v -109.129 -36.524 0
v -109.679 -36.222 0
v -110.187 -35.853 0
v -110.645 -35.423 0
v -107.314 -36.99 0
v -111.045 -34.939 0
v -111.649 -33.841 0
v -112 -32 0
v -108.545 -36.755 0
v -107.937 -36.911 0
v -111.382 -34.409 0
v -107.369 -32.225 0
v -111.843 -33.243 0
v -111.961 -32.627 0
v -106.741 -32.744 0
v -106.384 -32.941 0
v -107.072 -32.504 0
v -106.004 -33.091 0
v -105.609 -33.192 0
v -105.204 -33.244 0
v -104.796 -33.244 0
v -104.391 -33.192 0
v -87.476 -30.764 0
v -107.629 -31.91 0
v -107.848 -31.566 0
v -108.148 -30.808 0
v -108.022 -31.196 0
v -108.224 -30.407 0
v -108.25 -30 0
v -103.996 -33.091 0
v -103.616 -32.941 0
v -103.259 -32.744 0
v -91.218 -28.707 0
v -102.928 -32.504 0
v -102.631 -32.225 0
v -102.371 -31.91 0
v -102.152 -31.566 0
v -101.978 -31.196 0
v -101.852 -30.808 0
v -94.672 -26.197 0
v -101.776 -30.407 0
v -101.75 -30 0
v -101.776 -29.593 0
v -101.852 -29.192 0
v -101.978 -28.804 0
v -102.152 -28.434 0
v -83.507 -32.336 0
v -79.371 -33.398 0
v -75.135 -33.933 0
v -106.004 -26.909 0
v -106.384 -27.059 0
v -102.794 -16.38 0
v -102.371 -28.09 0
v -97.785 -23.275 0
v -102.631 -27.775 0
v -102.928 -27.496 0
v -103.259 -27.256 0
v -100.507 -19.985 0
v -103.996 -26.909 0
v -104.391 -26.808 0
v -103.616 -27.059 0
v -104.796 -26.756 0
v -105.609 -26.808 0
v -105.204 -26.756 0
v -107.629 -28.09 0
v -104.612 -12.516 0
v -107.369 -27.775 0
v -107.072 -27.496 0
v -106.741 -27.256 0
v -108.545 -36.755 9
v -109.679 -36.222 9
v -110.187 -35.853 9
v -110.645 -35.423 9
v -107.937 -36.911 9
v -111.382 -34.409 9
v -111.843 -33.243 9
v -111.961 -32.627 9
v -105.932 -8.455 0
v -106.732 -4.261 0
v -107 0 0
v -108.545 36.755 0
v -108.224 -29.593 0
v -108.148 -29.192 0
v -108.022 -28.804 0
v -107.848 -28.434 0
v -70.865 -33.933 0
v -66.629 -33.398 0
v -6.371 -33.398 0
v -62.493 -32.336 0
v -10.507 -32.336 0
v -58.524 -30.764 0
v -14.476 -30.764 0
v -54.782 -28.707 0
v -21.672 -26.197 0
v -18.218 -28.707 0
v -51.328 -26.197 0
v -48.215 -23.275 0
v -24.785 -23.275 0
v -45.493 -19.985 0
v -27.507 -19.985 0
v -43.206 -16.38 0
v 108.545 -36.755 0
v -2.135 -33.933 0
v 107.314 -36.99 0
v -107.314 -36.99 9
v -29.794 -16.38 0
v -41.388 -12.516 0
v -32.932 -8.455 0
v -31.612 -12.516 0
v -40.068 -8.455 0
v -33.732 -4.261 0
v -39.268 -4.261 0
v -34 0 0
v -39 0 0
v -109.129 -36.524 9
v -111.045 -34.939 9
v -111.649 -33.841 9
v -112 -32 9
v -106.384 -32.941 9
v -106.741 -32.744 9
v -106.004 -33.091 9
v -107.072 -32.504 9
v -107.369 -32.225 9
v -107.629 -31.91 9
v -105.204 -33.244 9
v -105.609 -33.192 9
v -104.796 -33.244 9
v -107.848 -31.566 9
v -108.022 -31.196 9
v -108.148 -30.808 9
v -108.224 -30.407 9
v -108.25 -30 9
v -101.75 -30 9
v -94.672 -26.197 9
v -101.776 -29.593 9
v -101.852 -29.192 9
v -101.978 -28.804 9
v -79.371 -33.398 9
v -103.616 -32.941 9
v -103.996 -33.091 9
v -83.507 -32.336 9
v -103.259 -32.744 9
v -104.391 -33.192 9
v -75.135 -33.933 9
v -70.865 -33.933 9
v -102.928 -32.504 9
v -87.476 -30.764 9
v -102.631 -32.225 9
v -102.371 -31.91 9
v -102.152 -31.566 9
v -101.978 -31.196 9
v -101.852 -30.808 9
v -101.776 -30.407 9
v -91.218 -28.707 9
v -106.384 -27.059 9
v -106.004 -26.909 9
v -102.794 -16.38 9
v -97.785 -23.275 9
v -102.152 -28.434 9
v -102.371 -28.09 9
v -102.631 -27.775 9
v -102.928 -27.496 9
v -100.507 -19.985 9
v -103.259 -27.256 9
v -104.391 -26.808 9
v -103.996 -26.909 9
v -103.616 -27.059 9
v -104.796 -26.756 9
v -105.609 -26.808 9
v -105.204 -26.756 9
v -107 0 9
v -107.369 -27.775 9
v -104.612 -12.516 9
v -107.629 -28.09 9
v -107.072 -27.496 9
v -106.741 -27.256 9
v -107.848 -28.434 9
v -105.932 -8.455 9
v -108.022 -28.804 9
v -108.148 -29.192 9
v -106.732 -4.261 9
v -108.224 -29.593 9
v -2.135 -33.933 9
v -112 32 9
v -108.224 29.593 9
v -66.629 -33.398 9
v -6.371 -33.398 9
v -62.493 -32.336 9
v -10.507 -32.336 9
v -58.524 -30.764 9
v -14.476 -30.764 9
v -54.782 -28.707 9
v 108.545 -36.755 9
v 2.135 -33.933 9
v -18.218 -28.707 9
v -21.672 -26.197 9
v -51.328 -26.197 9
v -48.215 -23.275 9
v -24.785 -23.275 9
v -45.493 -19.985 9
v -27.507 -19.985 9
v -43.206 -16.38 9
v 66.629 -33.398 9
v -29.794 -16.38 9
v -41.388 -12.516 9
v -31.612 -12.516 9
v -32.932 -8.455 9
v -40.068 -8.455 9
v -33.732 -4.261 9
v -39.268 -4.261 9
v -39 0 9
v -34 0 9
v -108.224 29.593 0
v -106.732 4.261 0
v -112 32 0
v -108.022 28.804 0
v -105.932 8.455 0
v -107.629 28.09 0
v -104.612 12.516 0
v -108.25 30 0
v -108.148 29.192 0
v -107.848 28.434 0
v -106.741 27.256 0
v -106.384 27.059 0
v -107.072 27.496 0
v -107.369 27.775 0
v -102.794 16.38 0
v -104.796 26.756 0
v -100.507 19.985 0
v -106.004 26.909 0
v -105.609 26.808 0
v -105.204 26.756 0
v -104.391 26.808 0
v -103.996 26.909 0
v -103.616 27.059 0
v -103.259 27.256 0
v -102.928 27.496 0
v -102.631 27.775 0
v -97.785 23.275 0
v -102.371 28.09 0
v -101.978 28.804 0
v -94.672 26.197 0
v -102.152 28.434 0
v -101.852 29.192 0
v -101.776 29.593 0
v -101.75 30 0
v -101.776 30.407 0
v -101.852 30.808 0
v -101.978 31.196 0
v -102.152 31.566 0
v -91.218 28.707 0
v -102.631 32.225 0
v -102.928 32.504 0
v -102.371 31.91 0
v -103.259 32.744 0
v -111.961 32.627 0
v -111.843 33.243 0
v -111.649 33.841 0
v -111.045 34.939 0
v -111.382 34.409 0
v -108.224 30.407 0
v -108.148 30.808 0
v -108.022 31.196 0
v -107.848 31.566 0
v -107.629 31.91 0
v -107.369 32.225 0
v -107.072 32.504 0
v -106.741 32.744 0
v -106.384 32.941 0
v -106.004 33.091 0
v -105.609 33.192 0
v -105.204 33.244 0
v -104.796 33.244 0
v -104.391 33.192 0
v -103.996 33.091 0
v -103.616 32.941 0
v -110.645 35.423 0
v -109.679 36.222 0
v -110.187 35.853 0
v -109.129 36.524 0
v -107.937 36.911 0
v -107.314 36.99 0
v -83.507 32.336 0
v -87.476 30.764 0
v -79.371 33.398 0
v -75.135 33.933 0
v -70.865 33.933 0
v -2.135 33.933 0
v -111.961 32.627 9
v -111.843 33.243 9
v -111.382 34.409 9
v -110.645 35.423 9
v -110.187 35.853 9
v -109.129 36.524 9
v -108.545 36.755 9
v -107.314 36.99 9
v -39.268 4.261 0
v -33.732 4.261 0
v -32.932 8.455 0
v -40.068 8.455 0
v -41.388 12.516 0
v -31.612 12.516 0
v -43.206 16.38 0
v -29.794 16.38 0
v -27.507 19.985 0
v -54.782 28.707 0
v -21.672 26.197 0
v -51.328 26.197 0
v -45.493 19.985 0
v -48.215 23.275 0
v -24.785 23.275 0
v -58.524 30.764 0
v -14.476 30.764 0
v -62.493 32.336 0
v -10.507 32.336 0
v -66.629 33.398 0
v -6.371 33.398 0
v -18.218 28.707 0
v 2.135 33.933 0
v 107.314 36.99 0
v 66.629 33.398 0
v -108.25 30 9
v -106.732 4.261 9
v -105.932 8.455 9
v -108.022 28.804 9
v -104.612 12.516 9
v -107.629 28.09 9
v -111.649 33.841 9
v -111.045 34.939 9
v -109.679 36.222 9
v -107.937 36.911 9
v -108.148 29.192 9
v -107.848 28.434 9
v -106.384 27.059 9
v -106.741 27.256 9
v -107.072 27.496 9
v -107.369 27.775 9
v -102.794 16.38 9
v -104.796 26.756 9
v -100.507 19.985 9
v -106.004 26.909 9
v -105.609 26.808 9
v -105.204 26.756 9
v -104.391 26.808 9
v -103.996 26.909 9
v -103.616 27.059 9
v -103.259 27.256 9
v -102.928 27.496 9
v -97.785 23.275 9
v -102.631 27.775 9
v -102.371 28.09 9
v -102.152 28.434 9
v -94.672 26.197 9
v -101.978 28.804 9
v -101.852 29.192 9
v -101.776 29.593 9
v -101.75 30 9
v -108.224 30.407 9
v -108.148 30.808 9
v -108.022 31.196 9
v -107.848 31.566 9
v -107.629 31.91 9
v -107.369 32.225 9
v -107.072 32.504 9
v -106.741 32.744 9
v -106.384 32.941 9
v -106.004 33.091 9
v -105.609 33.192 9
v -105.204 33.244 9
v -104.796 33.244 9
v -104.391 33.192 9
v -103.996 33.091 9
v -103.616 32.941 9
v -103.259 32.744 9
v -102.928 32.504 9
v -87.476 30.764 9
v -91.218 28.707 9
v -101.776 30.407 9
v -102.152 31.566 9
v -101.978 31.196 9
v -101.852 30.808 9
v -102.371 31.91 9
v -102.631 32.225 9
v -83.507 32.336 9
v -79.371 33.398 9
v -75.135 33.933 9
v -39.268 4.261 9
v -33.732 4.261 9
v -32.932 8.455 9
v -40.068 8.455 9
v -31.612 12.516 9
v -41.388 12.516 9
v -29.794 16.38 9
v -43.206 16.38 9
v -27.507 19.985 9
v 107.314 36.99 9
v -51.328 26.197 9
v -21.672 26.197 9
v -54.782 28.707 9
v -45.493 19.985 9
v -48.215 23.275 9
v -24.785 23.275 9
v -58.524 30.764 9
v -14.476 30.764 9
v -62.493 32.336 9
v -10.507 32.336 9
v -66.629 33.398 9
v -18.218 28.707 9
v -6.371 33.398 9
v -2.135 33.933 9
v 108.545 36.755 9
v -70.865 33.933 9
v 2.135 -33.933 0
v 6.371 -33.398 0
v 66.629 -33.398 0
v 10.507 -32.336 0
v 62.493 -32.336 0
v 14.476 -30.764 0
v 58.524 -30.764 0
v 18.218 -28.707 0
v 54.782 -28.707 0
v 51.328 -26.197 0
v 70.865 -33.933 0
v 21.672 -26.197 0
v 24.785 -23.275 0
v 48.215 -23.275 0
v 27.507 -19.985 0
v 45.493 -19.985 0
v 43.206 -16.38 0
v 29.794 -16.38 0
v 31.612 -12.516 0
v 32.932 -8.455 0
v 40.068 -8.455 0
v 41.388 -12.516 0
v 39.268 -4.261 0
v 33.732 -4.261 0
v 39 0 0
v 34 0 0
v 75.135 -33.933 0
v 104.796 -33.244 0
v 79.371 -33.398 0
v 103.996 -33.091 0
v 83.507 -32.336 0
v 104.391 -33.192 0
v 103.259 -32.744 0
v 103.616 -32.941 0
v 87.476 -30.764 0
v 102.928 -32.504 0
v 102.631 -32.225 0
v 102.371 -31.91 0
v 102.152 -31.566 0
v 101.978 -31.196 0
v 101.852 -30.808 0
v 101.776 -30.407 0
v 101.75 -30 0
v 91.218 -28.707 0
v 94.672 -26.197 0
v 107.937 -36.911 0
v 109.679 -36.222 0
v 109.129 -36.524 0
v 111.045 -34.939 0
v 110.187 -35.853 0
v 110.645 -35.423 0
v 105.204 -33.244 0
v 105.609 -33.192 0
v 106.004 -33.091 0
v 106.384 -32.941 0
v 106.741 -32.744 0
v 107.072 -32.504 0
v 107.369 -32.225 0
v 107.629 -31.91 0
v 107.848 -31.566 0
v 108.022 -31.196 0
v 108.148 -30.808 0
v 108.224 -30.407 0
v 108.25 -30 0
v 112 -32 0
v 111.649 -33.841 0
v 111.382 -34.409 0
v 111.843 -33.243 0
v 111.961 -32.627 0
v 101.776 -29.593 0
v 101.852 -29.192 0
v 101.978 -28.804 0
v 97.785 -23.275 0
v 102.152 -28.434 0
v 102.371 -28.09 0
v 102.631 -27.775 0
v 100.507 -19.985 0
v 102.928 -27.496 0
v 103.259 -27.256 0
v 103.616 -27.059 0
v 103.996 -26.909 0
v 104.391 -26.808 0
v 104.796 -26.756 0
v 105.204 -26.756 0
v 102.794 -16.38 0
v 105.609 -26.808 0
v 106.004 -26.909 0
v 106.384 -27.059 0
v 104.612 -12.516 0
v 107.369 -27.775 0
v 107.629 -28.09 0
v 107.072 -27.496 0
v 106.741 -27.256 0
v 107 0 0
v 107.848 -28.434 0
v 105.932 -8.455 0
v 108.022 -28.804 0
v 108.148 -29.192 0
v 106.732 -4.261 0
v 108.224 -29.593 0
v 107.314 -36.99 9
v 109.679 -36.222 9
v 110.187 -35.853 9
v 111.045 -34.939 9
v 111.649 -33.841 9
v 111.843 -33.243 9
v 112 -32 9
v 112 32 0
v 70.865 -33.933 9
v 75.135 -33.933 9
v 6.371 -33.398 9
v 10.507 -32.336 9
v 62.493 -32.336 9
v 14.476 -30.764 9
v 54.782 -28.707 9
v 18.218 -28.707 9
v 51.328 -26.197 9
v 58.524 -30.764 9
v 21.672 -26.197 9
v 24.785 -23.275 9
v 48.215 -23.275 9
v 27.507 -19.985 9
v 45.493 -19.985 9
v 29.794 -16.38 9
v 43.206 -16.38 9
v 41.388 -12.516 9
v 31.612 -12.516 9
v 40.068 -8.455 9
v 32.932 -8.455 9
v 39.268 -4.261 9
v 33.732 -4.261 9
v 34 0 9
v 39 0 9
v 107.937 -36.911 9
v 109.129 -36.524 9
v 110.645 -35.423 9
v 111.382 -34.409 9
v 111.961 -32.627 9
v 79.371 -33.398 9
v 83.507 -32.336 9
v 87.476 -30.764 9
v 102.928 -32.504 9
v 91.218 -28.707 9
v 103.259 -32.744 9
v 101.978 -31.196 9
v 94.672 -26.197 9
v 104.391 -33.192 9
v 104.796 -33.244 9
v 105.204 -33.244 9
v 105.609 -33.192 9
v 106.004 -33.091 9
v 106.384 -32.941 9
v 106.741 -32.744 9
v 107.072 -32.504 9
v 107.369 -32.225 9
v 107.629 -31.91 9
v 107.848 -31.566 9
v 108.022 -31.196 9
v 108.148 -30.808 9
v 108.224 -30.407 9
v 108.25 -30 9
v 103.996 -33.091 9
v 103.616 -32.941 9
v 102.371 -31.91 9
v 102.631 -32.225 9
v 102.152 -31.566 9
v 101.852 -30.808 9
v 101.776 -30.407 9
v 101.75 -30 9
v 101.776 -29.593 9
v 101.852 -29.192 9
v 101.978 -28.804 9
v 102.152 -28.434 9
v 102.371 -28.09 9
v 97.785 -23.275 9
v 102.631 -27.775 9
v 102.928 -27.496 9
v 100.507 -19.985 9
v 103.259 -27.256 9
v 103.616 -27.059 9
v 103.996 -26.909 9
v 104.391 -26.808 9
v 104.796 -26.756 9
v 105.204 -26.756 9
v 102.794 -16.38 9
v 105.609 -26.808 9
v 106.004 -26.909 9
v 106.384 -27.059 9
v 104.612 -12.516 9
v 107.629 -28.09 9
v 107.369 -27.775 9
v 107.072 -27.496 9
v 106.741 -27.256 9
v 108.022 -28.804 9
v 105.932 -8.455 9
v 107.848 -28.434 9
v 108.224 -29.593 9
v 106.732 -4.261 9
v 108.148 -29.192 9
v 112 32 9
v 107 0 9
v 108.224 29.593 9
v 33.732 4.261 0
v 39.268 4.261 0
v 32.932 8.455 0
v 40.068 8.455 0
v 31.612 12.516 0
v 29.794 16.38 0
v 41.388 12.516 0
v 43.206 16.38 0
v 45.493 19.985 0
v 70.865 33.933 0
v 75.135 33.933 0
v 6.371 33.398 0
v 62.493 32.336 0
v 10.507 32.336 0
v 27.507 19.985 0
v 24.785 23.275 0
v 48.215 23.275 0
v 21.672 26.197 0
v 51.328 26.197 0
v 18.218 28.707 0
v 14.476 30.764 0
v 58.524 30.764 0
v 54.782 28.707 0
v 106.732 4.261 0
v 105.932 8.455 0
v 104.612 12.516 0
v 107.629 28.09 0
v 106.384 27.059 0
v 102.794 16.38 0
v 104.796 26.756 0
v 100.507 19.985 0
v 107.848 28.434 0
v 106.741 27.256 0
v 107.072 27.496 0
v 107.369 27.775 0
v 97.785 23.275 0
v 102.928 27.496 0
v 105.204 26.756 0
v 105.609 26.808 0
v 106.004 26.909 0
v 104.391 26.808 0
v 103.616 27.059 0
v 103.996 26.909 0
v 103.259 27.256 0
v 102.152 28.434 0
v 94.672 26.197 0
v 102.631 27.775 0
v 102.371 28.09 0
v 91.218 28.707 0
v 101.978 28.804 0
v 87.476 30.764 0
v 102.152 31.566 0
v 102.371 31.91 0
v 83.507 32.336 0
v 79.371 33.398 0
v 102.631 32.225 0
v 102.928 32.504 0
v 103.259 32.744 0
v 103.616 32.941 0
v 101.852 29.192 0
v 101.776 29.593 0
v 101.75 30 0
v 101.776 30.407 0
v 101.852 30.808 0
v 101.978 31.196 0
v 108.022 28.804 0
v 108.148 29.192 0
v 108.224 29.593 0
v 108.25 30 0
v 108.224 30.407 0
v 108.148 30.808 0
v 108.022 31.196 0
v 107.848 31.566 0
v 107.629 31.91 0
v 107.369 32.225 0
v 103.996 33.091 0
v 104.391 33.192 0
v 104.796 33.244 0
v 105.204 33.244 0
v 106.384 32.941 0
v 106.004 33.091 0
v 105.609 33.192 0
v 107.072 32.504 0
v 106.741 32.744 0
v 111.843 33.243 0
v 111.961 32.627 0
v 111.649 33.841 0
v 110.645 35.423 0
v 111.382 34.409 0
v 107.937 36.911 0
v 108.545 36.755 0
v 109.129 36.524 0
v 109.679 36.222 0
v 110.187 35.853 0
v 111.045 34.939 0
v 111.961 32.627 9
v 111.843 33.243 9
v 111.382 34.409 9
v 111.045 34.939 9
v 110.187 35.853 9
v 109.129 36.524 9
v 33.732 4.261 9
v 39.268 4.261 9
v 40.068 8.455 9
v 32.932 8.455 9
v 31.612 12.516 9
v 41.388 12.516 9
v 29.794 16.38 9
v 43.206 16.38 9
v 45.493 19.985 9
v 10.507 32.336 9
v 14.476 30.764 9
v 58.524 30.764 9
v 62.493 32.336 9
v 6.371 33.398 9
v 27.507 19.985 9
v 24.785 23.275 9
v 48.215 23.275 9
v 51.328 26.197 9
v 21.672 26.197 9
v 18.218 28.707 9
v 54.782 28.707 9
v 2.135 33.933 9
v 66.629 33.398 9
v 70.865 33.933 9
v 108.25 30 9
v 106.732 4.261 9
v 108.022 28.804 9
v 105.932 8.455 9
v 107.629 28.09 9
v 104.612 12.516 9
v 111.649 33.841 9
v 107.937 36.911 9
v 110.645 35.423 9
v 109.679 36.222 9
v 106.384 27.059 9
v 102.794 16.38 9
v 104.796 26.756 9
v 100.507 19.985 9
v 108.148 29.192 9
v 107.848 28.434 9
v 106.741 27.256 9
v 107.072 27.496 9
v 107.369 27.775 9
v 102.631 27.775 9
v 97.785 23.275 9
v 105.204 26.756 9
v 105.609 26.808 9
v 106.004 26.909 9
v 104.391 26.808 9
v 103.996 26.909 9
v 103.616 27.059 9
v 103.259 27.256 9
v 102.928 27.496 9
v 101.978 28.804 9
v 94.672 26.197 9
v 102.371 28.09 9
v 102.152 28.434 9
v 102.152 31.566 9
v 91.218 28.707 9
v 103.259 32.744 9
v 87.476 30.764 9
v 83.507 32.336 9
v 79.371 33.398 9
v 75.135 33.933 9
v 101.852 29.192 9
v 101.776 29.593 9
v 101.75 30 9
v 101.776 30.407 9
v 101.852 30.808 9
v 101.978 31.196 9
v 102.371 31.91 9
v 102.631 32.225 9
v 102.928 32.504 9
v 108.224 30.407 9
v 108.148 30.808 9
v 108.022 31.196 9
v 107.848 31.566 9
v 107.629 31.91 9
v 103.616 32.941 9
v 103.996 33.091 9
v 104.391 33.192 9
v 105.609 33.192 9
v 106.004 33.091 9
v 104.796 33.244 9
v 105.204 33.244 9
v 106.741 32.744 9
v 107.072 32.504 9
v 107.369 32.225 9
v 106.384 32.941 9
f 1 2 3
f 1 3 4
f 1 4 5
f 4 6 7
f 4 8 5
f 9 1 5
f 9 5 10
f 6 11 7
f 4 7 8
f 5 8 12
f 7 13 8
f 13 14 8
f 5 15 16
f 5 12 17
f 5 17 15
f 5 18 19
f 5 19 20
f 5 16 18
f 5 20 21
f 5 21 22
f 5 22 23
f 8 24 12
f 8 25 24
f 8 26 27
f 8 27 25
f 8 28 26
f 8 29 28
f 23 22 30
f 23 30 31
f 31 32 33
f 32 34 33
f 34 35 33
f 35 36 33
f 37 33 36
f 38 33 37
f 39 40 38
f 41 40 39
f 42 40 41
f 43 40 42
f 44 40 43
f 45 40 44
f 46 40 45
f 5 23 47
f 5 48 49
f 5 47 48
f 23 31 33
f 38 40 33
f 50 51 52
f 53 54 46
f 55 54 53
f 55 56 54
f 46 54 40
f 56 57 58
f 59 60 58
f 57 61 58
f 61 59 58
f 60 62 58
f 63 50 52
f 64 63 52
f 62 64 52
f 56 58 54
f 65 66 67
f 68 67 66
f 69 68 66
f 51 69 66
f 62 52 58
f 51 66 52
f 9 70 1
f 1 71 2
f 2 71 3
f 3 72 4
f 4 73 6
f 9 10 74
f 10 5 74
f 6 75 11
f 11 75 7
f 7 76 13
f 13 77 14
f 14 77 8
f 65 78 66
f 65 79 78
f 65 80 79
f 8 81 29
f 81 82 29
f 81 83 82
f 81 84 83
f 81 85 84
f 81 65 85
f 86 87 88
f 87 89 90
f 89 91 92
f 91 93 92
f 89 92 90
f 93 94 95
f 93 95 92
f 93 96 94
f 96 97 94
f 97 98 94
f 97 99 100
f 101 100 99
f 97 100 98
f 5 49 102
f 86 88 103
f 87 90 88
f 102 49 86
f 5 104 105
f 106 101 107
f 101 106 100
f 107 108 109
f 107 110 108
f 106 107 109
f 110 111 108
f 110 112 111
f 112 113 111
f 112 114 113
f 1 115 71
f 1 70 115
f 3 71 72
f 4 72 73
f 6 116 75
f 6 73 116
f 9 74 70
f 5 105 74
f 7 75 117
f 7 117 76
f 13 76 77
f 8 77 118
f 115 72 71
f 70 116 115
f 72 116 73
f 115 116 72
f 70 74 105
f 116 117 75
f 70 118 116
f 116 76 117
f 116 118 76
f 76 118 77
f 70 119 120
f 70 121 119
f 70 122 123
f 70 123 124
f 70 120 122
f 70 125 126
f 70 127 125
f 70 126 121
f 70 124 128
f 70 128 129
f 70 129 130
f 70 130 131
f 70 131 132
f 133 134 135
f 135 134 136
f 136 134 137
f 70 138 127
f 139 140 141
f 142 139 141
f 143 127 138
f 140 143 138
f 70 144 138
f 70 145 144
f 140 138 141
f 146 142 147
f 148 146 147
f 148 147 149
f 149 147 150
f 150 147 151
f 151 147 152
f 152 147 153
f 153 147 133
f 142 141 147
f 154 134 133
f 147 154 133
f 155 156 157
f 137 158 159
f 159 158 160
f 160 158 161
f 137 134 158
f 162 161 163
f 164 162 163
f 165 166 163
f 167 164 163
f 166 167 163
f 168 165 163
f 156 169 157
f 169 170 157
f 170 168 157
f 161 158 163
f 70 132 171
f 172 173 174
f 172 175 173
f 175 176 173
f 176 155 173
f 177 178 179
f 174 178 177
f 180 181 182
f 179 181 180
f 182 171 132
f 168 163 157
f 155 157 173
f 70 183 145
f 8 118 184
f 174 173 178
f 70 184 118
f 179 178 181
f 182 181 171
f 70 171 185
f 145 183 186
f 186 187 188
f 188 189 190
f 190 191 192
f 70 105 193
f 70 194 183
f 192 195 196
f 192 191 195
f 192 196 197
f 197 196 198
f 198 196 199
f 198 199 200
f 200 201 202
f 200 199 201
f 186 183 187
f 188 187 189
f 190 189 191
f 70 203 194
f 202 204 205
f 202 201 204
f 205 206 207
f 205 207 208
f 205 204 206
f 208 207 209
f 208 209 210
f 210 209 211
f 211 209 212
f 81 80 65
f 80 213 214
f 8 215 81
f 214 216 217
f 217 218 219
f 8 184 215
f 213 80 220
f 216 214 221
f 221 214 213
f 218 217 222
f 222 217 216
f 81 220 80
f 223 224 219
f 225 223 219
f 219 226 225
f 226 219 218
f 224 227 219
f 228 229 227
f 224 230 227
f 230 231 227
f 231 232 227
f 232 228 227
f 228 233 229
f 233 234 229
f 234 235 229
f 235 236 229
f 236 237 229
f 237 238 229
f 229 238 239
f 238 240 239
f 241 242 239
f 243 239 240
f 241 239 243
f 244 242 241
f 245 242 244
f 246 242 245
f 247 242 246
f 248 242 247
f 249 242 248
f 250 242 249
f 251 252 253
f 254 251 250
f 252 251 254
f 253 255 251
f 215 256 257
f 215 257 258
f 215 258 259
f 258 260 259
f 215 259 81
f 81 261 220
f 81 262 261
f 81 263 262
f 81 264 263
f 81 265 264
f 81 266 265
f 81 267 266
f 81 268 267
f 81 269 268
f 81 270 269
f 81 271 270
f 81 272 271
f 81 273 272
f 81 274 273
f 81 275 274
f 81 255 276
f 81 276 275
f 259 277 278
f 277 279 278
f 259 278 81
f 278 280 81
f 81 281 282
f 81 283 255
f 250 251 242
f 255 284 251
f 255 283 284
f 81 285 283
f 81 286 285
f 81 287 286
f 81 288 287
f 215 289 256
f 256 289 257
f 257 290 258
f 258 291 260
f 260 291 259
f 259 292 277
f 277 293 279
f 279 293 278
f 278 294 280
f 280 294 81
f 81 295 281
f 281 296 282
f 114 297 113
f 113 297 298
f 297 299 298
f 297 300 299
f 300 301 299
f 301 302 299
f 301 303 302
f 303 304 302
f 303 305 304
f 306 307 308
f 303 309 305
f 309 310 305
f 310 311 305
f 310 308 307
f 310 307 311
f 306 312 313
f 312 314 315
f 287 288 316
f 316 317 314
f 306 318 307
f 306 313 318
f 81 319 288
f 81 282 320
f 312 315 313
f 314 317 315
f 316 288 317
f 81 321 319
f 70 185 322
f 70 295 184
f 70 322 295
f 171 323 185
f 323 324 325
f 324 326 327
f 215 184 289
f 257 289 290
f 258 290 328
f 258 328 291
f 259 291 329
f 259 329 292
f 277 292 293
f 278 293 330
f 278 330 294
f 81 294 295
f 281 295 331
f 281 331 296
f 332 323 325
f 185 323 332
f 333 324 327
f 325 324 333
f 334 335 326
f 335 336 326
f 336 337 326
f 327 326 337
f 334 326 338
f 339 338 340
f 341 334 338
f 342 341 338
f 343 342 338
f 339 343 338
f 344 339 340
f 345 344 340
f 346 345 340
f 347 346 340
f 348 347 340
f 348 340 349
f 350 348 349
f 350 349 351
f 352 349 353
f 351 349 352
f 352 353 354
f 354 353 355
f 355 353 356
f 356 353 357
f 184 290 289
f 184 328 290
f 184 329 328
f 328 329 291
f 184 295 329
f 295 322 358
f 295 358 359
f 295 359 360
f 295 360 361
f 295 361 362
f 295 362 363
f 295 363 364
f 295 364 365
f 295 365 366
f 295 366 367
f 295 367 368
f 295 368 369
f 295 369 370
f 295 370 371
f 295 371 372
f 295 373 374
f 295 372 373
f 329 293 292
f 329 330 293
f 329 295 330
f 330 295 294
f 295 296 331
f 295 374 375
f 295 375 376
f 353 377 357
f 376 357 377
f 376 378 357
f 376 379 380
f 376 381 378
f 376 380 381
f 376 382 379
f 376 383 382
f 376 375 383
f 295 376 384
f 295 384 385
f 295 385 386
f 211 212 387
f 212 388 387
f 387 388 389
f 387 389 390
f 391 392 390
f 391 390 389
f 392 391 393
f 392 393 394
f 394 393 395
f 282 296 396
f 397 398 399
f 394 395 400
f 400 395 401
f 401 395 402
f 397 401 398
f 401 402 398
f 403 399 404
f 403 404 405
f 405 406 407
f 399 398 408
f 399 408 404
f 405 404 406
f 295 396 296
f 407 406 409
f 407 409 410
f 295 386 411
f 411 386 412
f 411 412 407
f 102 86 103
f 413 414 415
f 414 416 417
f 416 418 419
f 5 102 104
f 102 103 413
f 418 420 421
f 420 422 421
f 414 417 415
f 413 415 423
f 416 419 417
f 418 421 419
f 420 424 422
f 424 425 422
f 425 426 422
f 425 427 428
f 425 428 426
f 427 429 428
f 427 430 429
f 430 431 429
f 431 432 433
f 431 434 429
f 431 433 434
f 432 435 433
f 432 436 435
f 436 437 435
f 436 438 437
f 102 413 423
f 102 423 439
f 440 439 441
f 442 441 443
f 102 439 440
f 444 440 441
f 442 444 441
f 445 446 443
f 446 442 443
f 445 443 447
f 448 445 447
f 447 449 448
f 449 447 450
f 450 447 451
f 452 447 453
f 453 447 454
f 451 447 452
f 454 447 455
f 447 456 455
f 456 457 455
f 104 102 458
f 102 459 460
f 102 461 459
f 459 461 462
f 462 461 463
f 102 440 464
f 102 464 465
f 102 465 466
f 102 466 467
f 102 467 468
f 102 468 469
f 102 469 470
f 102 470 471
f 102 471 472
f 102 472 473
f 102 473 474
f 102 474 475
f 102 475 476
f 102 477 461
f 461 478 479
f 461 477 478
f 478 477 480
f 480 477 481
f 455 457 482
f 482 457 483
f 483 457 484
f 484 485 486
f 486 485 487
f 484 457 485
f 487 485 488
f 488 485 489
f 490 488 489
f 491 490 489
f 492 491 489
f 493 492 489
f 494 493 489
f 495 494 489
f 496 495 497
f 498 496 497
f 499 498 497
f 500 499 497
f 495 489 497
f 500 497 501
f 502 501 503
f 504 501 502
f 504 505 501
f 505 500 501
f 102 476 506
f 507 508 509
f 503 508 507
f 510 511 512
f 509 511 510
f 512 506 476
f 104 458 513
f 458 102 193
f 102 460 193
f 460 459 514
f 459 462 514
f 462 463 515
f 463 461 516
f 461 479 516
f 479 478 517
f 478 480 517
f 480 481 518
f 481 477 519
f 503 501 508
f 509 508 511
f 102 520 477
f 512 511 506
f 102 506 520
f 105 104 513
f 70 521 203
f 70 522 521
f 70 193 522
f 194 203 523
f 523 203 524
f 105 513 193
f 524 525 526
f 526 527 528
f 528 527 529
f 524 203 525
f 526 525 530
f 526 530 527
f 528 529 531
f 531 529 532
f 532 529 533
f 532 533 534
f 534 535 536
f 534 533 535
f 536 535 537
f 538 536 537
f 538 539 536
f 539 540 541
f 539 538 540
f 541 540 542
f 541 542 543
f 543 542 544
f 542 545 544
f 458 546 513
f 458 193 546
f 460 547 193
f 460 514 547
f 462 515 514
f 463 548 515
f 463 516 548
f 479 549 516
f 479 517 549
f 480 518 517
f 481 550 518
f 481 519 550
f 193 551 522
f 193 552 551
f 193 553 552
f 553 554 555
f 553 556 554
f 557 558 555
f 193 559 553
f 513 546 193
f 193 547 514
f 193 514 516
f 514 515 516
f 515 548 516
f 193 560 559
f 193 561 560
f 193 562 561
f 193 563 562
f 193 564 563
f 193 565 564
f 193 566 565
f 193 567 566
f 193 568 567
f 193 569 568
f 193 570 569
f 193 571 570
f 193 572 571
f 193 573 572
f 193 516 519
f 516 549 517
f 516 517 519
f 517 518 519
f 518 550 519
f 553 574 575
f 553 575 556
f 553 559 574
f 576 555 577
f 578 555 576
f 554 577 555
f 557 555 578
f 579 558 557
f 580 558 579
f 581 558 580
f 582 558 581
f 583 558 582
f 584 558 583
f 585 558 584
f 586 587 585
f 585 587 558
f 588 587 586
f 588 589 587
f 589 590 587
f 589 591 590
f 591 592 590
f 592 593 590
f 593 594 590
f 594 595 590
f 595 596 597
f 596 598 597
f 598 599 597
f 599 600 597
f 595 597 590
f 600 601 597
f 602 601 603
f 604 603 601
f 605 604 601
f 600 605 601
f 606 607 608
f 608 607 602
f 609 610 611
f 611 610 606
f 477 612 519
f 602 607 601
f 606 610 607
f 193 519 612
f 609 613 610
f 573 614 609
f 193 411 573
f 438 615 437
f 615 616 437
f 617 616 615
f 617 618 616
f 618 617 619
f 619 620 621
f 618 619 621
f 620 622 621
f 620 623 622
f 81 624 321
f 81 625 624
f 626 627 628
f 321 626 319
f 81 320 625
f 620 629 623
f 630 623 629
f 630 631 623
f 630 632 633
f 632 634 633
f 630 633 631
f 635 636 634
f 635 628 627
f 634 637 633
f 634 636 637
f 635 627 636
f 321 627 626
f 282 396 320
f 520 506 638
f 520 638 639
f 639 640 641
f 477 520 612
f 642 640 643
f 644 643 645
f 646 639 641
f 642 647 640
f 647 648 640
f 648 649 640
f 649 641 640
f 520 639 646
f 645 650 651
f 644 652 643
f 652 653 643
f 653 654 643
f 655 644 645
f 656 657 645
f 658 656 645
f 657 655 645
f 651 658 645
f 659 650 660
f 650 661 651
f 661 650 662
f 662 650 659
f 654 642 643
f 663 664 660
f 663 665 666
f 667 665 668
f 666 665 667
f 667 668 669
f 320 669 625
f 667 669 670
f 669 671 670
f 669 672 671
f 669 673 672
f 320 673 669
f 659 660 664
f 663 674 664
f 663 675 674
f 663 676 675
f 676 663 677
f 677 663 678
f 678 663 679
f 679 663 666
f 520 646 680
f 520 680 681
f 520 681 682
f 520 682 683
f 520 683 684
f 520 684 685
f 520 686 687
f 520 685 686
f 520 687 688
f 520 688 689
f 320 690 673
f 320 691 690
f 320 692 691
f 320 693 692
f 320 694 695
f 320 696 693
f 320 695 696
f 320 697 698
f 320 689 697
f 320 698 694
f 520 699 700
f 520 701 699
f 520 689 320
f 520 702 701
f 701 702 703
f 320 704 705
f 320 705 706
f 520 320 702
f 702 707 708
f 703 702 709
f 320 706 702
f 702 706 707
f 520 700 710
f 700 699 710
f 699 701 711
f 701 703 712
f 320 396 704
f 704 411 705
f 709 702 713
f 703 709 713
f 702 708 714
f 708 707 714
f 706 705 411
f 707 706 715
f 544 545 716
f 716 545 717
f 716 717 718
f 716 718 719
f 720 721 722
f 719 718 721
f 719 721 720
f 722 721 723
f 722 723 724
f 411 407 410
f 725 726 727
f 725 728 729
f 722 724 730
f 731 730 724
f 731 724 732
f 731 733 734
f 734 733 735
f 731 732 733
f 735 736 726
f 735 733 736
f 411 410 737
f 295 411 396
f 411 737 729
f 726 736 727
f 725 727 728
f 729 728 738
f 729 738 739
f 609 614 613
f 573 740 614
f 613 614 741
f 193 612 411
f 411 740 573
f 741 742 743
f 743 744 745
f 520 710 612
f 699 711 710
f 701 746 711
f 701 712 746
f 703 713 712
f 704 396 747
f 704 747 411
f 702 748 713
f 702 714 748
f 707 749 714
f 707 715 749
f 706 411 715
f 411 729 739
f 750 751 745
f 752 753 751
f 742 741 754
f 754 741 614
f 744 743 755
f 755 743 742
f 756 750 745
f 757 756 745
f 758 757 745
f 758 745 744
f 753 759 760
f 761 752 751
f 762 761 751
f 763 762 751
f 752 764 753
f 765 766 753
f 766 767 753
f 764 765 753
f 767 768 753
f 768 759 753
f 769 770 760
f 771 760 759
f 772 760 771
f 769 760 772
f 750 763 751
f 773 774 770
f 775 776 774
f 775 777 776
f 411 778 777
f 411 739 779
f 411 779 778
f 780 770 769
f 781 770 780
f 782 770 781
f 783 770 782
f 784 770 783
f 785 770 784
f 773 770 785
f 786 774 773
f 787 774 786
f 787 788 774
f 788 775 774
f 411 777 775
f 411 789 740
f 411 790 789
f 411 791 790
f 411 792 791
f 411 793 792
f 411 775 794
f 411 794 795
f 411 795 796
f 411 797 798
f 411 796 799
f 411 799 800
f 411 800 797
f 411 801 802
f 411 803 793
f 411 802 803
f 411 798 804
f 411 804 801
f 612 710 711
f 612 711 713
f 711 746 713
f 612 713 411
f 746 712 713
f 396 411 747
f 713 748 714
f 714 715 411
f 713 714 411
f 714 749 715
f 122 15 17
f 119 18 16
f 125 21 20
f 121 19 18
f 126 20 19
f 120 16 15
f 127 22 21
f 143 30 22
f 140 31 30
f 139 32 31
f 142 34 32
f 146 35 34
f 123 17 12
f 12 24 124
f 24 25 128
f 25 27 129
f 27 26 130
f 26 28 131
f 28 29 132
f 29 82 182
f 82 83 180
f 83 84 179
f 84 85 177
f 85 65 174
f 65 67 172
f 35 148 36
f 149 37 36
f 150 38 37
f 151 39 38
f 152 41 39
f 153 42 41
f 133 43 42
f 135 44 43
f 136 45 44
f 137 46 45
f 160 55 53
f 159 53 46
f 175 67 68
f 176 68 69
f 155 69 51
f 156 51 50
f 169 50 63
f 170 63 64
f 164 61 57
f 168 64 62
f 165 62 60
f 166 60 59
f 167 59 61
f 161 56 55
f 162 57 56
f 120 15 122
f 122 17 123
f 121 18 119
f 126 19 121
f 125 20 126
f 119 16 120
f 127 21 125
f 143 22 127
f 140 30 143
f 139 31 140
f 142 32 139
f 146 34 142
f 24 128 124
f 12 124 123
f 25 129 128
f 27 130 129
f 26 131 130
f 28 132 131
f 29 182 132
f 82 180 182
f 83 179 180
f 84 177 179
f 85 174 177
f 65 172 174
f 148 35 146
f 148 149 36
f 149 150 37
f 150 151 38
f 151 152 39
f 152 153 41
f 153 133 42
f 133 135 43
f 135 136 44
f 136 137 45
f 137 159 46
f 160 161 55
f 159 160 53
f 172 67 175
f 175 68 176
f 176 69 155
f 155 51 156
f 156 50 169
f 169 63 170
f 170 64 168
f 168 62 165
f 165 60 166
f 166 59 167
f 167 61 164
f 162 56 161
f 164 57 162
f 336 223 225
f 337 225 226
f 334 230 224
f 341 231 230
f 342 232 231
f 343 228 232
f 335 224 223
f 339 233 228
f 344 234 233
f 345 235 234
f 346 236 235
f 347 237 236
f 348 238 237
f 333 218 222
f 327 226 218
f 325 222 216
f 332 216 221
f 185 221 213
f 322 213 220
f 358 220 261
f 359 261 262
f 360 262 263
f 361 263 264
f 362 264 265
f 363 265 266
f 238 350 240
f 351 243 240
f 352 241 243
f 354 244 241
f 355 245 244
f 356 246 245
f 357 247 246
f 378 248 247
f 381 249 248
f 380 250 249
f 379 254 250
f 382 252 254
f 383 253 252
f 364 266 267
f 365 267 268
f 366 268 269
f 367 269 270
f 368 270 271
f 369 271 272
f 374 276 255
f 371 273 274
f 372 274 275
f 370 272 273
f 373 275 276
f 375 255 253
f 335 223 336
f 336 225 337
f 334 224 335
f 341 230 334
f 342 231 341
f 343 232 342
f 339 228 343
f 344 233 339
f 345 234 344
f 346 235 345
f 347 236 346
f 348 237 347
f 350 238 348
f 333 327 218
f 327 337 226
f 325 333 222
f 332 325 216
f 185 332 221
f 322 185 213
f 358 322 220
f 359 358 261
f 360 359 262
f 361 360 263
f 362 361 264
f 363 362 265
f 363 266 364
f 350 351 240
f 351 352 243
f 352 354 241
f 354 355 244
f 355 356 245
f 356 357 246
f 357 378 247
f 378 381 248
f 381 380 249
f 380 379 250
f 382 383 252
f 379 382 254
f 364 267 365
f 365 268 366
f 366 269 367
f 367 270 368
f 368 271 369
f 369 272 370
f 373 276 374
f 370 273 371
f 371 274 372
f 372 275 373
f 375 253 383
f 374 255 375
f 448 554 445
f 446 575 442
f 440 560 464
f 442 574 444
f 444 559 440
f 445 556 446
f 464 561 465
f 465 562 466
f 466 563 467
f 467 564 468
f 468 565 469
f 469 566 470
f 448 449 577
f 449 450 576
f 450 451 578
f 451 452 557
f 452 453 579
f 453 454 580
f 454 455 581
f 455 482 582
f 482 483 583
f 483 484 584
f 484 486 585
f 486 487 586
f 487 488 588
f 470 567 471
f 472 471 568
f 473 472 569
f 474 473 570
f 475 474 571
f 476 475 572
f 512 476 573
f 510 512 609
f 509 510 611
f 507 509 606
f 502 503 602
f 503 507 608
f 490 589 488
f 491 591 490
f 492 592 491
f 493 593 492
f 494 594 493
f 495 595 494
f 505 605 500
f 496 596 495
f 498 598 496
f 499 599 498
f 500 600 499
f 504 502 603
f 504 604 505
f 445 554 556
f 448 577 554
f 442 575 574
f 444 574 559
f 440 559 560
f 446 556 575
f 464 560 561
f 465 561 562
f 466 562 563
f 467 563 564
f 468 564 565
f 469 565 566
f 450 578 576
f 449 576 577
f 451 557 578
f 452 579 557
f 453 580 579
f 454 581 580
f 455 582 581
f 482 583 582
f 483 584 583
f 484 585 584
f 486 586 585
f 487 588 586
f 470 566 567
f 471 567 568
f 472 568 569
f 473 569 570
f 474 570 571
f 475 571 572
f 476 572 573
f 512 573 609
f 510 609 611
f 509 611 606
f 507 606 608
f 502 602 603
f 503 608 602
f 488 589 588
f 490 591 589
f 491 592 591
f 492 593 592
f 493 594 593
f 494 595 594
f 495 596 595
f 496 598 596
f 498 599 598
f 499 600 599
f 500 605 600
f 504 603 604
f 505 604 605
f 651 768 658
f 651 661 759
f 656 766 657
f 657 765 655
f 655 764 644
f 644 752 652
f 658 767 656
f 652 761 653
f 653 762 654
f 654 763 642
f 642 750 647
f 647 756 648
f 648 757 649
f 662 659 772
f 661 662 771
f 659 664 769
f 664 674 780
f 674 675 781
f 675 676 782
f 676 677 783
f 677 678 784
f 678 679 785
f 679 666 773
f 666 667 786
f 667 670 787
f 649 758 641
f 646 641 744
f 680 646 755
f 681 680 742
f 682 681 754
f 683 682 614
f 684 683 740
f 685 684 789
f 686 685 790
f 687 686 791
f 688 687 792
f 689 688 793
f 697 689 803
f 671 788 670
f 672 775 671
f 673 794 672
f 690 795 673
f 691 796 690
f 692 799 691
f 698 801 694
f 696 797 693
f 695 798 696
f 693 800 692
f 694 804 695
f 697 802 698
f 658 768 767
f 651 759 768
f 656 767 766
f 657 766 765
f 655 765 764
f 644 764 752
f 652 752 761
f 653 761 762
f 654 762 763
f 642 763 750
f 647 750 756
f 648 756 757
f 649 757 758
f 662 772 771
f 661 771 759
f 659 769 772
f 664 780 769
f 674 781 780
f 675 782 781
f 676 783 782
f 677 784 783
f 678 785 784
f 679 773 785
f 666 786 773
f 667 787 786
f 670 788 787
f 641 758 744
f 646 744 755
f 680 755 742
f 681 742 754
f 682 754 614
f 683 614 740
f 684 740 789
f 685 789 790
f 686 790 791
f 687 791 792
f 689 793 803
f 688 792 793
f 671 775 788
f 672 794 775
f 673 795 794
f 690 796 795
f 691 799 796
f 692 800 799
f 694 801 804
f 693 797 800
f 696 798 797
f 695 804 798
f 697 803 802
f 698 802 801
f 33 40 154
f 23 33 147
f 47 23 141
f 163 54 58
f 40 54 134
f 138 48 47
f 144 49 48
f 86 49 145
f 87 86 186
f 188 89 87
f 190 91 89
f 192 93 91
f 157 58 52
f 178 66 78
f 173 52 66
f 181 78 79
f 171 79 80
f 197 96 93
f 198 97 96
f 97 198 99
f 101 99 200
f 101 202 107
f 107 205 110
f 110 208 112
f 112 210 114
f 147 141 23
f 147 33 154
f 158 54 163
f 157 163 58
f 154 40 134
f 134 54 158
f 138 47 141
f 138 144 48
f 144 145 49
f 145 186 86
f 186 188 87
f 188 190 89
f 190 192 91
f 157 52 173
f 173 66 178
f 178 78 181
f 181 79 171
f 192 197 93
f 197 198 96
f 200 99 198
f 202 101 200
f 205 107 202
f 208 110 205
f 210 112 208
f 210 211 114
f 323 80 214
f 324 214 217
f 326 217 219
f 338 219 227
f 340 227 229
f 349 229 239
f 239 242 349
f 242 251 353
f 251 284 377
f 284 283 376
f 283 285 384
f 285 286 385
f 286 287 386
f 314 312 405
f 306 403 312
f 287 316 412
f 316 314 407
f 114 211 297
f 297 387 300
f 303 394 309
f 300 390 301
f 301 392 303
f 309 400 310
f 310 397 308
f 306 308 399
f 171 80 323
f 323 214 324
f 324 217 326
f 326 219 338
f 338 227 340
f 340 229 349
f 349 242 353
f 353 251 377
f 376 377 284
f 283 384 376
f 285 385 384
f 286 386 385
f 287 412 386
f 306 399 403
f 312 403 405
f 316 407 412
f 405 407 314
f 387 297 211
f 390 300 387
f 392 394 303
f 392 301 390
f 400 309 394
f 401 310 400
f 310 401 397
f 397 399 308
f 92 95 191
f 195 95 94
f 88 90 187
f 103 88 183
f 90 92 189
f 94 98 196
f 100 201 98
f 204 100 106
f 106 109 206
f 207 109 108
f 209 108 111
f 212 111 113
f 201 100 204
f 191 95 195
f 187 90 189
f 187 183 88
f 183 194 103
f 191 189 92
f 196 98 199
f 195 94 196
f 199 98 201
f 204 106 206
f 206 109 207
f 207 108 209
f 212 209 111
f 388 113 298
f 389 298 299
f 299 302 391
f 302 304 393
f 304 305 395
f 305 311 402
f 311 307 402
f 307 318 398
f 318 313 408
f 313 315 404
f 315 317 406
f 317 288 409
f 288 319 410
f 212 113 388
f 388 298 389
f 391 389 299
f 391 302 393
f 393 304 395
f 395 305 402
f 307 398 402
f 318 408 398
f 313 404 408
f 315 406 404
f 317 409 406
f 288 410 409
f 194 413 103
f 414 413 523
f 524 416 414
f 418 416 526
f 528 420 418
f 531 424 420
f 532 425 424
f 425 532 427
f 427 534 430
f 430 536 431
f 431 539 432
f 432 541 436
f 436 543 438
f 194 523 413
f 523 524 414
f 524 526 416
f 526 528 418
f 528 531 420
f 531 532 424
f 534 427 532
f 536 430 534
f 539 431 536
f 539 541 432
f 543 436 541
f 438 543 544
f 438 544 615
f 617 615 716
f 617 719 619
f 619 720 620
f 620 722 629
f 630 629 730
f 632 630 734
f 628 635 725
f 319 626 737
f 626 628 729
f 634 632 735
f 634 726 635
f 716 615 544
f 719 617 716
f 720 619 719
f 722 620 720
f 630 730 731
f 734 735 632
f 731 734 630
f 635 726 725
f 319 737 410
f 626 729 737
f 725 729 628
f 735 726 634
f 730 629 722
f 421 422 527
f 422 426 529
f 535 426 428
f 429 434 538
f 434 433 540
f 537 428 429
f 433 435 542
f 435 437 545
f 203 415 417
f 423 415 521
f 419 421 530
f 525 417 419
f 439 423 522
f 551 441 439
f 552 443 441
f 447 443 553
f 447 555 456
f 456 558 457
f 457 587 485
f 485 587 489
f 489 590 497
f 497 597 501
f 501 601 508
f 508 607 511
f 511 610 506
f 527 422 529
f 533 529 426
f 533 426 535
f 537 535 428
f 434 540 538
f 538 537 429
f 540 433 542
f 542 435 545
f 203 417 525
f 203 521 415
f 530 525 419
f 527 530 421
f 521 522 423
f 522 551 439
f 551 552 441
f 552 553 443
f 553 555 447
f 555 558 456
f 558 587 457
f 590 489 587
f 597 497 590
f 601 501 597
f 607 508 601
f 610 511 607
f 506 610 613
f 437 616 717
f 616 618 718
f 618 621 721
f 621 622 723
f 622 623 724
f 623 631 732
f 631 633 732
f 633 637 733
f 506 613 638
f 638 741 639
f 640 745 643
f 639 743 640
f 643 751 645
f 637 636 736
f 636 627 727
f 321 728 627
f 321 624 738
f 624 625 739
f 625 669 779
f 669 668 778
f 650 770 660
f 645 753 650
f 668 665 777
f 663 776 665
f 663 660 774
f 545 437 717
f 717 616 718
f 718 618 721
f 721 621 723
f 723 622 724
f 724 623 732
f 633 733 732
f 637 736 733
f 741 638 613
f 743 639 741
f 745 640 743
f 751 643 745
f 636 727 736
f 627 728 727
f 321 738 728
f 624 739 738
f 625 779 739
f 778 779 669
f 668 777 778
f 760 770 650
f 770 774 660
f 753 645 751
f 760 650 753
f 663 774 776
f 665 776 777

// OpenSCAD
$fn = 50;

difference() {
	union() {
		hull() {
			translate(v = [-107.0, 32.0, 0]) {
				cylinder(h = 9, r = 5);
			}
			translate(v = [107.0, 32.0, 0]) {
				cylinder(h = 9, r = 5);
			}
			translate(v = [-107.0, -32.0, 0]) {
				cylinder(h = 9, r = 5);
			}
			translate(v = [107.0, -32.0, 0]) {
				cylinder(h = 9, r = 5);
			}
		}
	}
	union() {
		translate(v = [-105.0, -30.0, -100.0]) {
			cylinder(h = 200, r = 3.25);
		}
		translate(v = [-105.0, 30.0, -100.0]) {
			cylinder(h = 200, r = 3.25);
		}
		translate(v = [105.0, -30.0, -100.0]) {
			cylinder(h = 200, r = 3.25);
		}
		translate(v = [105.0, 30.0, -100.0]) {
			cylinder(h = 200, r = 3.25);
		}
		translate(v = [-105.0, -30.0, -100.0]) {
			cylinder(h = 200, r = 1.8);
		}
		translate(v = [-105.0, 30.0, -100.0]) {
			cylinder(h = 200, r = 1.8);
		}
		translate(v = [105.0, -30.0, -100.0]) {
			cylinder(h = 200, r = 1.8);
		}
		translate(v = [105.0, 30.0, -100.0]) {
			cylinder(h = 200, r = 1.8);
		}
		translate(v = [-73.0, 0, 0.0]) {
			cylinder(h = 9, r = 34.0);
		}
		cylinder(h = 9, r = 34.0);
		translate(v = [73.0, 0, 0.0]) {
			cylinder(h = 9, r = 34.0);
		}
	}
}
